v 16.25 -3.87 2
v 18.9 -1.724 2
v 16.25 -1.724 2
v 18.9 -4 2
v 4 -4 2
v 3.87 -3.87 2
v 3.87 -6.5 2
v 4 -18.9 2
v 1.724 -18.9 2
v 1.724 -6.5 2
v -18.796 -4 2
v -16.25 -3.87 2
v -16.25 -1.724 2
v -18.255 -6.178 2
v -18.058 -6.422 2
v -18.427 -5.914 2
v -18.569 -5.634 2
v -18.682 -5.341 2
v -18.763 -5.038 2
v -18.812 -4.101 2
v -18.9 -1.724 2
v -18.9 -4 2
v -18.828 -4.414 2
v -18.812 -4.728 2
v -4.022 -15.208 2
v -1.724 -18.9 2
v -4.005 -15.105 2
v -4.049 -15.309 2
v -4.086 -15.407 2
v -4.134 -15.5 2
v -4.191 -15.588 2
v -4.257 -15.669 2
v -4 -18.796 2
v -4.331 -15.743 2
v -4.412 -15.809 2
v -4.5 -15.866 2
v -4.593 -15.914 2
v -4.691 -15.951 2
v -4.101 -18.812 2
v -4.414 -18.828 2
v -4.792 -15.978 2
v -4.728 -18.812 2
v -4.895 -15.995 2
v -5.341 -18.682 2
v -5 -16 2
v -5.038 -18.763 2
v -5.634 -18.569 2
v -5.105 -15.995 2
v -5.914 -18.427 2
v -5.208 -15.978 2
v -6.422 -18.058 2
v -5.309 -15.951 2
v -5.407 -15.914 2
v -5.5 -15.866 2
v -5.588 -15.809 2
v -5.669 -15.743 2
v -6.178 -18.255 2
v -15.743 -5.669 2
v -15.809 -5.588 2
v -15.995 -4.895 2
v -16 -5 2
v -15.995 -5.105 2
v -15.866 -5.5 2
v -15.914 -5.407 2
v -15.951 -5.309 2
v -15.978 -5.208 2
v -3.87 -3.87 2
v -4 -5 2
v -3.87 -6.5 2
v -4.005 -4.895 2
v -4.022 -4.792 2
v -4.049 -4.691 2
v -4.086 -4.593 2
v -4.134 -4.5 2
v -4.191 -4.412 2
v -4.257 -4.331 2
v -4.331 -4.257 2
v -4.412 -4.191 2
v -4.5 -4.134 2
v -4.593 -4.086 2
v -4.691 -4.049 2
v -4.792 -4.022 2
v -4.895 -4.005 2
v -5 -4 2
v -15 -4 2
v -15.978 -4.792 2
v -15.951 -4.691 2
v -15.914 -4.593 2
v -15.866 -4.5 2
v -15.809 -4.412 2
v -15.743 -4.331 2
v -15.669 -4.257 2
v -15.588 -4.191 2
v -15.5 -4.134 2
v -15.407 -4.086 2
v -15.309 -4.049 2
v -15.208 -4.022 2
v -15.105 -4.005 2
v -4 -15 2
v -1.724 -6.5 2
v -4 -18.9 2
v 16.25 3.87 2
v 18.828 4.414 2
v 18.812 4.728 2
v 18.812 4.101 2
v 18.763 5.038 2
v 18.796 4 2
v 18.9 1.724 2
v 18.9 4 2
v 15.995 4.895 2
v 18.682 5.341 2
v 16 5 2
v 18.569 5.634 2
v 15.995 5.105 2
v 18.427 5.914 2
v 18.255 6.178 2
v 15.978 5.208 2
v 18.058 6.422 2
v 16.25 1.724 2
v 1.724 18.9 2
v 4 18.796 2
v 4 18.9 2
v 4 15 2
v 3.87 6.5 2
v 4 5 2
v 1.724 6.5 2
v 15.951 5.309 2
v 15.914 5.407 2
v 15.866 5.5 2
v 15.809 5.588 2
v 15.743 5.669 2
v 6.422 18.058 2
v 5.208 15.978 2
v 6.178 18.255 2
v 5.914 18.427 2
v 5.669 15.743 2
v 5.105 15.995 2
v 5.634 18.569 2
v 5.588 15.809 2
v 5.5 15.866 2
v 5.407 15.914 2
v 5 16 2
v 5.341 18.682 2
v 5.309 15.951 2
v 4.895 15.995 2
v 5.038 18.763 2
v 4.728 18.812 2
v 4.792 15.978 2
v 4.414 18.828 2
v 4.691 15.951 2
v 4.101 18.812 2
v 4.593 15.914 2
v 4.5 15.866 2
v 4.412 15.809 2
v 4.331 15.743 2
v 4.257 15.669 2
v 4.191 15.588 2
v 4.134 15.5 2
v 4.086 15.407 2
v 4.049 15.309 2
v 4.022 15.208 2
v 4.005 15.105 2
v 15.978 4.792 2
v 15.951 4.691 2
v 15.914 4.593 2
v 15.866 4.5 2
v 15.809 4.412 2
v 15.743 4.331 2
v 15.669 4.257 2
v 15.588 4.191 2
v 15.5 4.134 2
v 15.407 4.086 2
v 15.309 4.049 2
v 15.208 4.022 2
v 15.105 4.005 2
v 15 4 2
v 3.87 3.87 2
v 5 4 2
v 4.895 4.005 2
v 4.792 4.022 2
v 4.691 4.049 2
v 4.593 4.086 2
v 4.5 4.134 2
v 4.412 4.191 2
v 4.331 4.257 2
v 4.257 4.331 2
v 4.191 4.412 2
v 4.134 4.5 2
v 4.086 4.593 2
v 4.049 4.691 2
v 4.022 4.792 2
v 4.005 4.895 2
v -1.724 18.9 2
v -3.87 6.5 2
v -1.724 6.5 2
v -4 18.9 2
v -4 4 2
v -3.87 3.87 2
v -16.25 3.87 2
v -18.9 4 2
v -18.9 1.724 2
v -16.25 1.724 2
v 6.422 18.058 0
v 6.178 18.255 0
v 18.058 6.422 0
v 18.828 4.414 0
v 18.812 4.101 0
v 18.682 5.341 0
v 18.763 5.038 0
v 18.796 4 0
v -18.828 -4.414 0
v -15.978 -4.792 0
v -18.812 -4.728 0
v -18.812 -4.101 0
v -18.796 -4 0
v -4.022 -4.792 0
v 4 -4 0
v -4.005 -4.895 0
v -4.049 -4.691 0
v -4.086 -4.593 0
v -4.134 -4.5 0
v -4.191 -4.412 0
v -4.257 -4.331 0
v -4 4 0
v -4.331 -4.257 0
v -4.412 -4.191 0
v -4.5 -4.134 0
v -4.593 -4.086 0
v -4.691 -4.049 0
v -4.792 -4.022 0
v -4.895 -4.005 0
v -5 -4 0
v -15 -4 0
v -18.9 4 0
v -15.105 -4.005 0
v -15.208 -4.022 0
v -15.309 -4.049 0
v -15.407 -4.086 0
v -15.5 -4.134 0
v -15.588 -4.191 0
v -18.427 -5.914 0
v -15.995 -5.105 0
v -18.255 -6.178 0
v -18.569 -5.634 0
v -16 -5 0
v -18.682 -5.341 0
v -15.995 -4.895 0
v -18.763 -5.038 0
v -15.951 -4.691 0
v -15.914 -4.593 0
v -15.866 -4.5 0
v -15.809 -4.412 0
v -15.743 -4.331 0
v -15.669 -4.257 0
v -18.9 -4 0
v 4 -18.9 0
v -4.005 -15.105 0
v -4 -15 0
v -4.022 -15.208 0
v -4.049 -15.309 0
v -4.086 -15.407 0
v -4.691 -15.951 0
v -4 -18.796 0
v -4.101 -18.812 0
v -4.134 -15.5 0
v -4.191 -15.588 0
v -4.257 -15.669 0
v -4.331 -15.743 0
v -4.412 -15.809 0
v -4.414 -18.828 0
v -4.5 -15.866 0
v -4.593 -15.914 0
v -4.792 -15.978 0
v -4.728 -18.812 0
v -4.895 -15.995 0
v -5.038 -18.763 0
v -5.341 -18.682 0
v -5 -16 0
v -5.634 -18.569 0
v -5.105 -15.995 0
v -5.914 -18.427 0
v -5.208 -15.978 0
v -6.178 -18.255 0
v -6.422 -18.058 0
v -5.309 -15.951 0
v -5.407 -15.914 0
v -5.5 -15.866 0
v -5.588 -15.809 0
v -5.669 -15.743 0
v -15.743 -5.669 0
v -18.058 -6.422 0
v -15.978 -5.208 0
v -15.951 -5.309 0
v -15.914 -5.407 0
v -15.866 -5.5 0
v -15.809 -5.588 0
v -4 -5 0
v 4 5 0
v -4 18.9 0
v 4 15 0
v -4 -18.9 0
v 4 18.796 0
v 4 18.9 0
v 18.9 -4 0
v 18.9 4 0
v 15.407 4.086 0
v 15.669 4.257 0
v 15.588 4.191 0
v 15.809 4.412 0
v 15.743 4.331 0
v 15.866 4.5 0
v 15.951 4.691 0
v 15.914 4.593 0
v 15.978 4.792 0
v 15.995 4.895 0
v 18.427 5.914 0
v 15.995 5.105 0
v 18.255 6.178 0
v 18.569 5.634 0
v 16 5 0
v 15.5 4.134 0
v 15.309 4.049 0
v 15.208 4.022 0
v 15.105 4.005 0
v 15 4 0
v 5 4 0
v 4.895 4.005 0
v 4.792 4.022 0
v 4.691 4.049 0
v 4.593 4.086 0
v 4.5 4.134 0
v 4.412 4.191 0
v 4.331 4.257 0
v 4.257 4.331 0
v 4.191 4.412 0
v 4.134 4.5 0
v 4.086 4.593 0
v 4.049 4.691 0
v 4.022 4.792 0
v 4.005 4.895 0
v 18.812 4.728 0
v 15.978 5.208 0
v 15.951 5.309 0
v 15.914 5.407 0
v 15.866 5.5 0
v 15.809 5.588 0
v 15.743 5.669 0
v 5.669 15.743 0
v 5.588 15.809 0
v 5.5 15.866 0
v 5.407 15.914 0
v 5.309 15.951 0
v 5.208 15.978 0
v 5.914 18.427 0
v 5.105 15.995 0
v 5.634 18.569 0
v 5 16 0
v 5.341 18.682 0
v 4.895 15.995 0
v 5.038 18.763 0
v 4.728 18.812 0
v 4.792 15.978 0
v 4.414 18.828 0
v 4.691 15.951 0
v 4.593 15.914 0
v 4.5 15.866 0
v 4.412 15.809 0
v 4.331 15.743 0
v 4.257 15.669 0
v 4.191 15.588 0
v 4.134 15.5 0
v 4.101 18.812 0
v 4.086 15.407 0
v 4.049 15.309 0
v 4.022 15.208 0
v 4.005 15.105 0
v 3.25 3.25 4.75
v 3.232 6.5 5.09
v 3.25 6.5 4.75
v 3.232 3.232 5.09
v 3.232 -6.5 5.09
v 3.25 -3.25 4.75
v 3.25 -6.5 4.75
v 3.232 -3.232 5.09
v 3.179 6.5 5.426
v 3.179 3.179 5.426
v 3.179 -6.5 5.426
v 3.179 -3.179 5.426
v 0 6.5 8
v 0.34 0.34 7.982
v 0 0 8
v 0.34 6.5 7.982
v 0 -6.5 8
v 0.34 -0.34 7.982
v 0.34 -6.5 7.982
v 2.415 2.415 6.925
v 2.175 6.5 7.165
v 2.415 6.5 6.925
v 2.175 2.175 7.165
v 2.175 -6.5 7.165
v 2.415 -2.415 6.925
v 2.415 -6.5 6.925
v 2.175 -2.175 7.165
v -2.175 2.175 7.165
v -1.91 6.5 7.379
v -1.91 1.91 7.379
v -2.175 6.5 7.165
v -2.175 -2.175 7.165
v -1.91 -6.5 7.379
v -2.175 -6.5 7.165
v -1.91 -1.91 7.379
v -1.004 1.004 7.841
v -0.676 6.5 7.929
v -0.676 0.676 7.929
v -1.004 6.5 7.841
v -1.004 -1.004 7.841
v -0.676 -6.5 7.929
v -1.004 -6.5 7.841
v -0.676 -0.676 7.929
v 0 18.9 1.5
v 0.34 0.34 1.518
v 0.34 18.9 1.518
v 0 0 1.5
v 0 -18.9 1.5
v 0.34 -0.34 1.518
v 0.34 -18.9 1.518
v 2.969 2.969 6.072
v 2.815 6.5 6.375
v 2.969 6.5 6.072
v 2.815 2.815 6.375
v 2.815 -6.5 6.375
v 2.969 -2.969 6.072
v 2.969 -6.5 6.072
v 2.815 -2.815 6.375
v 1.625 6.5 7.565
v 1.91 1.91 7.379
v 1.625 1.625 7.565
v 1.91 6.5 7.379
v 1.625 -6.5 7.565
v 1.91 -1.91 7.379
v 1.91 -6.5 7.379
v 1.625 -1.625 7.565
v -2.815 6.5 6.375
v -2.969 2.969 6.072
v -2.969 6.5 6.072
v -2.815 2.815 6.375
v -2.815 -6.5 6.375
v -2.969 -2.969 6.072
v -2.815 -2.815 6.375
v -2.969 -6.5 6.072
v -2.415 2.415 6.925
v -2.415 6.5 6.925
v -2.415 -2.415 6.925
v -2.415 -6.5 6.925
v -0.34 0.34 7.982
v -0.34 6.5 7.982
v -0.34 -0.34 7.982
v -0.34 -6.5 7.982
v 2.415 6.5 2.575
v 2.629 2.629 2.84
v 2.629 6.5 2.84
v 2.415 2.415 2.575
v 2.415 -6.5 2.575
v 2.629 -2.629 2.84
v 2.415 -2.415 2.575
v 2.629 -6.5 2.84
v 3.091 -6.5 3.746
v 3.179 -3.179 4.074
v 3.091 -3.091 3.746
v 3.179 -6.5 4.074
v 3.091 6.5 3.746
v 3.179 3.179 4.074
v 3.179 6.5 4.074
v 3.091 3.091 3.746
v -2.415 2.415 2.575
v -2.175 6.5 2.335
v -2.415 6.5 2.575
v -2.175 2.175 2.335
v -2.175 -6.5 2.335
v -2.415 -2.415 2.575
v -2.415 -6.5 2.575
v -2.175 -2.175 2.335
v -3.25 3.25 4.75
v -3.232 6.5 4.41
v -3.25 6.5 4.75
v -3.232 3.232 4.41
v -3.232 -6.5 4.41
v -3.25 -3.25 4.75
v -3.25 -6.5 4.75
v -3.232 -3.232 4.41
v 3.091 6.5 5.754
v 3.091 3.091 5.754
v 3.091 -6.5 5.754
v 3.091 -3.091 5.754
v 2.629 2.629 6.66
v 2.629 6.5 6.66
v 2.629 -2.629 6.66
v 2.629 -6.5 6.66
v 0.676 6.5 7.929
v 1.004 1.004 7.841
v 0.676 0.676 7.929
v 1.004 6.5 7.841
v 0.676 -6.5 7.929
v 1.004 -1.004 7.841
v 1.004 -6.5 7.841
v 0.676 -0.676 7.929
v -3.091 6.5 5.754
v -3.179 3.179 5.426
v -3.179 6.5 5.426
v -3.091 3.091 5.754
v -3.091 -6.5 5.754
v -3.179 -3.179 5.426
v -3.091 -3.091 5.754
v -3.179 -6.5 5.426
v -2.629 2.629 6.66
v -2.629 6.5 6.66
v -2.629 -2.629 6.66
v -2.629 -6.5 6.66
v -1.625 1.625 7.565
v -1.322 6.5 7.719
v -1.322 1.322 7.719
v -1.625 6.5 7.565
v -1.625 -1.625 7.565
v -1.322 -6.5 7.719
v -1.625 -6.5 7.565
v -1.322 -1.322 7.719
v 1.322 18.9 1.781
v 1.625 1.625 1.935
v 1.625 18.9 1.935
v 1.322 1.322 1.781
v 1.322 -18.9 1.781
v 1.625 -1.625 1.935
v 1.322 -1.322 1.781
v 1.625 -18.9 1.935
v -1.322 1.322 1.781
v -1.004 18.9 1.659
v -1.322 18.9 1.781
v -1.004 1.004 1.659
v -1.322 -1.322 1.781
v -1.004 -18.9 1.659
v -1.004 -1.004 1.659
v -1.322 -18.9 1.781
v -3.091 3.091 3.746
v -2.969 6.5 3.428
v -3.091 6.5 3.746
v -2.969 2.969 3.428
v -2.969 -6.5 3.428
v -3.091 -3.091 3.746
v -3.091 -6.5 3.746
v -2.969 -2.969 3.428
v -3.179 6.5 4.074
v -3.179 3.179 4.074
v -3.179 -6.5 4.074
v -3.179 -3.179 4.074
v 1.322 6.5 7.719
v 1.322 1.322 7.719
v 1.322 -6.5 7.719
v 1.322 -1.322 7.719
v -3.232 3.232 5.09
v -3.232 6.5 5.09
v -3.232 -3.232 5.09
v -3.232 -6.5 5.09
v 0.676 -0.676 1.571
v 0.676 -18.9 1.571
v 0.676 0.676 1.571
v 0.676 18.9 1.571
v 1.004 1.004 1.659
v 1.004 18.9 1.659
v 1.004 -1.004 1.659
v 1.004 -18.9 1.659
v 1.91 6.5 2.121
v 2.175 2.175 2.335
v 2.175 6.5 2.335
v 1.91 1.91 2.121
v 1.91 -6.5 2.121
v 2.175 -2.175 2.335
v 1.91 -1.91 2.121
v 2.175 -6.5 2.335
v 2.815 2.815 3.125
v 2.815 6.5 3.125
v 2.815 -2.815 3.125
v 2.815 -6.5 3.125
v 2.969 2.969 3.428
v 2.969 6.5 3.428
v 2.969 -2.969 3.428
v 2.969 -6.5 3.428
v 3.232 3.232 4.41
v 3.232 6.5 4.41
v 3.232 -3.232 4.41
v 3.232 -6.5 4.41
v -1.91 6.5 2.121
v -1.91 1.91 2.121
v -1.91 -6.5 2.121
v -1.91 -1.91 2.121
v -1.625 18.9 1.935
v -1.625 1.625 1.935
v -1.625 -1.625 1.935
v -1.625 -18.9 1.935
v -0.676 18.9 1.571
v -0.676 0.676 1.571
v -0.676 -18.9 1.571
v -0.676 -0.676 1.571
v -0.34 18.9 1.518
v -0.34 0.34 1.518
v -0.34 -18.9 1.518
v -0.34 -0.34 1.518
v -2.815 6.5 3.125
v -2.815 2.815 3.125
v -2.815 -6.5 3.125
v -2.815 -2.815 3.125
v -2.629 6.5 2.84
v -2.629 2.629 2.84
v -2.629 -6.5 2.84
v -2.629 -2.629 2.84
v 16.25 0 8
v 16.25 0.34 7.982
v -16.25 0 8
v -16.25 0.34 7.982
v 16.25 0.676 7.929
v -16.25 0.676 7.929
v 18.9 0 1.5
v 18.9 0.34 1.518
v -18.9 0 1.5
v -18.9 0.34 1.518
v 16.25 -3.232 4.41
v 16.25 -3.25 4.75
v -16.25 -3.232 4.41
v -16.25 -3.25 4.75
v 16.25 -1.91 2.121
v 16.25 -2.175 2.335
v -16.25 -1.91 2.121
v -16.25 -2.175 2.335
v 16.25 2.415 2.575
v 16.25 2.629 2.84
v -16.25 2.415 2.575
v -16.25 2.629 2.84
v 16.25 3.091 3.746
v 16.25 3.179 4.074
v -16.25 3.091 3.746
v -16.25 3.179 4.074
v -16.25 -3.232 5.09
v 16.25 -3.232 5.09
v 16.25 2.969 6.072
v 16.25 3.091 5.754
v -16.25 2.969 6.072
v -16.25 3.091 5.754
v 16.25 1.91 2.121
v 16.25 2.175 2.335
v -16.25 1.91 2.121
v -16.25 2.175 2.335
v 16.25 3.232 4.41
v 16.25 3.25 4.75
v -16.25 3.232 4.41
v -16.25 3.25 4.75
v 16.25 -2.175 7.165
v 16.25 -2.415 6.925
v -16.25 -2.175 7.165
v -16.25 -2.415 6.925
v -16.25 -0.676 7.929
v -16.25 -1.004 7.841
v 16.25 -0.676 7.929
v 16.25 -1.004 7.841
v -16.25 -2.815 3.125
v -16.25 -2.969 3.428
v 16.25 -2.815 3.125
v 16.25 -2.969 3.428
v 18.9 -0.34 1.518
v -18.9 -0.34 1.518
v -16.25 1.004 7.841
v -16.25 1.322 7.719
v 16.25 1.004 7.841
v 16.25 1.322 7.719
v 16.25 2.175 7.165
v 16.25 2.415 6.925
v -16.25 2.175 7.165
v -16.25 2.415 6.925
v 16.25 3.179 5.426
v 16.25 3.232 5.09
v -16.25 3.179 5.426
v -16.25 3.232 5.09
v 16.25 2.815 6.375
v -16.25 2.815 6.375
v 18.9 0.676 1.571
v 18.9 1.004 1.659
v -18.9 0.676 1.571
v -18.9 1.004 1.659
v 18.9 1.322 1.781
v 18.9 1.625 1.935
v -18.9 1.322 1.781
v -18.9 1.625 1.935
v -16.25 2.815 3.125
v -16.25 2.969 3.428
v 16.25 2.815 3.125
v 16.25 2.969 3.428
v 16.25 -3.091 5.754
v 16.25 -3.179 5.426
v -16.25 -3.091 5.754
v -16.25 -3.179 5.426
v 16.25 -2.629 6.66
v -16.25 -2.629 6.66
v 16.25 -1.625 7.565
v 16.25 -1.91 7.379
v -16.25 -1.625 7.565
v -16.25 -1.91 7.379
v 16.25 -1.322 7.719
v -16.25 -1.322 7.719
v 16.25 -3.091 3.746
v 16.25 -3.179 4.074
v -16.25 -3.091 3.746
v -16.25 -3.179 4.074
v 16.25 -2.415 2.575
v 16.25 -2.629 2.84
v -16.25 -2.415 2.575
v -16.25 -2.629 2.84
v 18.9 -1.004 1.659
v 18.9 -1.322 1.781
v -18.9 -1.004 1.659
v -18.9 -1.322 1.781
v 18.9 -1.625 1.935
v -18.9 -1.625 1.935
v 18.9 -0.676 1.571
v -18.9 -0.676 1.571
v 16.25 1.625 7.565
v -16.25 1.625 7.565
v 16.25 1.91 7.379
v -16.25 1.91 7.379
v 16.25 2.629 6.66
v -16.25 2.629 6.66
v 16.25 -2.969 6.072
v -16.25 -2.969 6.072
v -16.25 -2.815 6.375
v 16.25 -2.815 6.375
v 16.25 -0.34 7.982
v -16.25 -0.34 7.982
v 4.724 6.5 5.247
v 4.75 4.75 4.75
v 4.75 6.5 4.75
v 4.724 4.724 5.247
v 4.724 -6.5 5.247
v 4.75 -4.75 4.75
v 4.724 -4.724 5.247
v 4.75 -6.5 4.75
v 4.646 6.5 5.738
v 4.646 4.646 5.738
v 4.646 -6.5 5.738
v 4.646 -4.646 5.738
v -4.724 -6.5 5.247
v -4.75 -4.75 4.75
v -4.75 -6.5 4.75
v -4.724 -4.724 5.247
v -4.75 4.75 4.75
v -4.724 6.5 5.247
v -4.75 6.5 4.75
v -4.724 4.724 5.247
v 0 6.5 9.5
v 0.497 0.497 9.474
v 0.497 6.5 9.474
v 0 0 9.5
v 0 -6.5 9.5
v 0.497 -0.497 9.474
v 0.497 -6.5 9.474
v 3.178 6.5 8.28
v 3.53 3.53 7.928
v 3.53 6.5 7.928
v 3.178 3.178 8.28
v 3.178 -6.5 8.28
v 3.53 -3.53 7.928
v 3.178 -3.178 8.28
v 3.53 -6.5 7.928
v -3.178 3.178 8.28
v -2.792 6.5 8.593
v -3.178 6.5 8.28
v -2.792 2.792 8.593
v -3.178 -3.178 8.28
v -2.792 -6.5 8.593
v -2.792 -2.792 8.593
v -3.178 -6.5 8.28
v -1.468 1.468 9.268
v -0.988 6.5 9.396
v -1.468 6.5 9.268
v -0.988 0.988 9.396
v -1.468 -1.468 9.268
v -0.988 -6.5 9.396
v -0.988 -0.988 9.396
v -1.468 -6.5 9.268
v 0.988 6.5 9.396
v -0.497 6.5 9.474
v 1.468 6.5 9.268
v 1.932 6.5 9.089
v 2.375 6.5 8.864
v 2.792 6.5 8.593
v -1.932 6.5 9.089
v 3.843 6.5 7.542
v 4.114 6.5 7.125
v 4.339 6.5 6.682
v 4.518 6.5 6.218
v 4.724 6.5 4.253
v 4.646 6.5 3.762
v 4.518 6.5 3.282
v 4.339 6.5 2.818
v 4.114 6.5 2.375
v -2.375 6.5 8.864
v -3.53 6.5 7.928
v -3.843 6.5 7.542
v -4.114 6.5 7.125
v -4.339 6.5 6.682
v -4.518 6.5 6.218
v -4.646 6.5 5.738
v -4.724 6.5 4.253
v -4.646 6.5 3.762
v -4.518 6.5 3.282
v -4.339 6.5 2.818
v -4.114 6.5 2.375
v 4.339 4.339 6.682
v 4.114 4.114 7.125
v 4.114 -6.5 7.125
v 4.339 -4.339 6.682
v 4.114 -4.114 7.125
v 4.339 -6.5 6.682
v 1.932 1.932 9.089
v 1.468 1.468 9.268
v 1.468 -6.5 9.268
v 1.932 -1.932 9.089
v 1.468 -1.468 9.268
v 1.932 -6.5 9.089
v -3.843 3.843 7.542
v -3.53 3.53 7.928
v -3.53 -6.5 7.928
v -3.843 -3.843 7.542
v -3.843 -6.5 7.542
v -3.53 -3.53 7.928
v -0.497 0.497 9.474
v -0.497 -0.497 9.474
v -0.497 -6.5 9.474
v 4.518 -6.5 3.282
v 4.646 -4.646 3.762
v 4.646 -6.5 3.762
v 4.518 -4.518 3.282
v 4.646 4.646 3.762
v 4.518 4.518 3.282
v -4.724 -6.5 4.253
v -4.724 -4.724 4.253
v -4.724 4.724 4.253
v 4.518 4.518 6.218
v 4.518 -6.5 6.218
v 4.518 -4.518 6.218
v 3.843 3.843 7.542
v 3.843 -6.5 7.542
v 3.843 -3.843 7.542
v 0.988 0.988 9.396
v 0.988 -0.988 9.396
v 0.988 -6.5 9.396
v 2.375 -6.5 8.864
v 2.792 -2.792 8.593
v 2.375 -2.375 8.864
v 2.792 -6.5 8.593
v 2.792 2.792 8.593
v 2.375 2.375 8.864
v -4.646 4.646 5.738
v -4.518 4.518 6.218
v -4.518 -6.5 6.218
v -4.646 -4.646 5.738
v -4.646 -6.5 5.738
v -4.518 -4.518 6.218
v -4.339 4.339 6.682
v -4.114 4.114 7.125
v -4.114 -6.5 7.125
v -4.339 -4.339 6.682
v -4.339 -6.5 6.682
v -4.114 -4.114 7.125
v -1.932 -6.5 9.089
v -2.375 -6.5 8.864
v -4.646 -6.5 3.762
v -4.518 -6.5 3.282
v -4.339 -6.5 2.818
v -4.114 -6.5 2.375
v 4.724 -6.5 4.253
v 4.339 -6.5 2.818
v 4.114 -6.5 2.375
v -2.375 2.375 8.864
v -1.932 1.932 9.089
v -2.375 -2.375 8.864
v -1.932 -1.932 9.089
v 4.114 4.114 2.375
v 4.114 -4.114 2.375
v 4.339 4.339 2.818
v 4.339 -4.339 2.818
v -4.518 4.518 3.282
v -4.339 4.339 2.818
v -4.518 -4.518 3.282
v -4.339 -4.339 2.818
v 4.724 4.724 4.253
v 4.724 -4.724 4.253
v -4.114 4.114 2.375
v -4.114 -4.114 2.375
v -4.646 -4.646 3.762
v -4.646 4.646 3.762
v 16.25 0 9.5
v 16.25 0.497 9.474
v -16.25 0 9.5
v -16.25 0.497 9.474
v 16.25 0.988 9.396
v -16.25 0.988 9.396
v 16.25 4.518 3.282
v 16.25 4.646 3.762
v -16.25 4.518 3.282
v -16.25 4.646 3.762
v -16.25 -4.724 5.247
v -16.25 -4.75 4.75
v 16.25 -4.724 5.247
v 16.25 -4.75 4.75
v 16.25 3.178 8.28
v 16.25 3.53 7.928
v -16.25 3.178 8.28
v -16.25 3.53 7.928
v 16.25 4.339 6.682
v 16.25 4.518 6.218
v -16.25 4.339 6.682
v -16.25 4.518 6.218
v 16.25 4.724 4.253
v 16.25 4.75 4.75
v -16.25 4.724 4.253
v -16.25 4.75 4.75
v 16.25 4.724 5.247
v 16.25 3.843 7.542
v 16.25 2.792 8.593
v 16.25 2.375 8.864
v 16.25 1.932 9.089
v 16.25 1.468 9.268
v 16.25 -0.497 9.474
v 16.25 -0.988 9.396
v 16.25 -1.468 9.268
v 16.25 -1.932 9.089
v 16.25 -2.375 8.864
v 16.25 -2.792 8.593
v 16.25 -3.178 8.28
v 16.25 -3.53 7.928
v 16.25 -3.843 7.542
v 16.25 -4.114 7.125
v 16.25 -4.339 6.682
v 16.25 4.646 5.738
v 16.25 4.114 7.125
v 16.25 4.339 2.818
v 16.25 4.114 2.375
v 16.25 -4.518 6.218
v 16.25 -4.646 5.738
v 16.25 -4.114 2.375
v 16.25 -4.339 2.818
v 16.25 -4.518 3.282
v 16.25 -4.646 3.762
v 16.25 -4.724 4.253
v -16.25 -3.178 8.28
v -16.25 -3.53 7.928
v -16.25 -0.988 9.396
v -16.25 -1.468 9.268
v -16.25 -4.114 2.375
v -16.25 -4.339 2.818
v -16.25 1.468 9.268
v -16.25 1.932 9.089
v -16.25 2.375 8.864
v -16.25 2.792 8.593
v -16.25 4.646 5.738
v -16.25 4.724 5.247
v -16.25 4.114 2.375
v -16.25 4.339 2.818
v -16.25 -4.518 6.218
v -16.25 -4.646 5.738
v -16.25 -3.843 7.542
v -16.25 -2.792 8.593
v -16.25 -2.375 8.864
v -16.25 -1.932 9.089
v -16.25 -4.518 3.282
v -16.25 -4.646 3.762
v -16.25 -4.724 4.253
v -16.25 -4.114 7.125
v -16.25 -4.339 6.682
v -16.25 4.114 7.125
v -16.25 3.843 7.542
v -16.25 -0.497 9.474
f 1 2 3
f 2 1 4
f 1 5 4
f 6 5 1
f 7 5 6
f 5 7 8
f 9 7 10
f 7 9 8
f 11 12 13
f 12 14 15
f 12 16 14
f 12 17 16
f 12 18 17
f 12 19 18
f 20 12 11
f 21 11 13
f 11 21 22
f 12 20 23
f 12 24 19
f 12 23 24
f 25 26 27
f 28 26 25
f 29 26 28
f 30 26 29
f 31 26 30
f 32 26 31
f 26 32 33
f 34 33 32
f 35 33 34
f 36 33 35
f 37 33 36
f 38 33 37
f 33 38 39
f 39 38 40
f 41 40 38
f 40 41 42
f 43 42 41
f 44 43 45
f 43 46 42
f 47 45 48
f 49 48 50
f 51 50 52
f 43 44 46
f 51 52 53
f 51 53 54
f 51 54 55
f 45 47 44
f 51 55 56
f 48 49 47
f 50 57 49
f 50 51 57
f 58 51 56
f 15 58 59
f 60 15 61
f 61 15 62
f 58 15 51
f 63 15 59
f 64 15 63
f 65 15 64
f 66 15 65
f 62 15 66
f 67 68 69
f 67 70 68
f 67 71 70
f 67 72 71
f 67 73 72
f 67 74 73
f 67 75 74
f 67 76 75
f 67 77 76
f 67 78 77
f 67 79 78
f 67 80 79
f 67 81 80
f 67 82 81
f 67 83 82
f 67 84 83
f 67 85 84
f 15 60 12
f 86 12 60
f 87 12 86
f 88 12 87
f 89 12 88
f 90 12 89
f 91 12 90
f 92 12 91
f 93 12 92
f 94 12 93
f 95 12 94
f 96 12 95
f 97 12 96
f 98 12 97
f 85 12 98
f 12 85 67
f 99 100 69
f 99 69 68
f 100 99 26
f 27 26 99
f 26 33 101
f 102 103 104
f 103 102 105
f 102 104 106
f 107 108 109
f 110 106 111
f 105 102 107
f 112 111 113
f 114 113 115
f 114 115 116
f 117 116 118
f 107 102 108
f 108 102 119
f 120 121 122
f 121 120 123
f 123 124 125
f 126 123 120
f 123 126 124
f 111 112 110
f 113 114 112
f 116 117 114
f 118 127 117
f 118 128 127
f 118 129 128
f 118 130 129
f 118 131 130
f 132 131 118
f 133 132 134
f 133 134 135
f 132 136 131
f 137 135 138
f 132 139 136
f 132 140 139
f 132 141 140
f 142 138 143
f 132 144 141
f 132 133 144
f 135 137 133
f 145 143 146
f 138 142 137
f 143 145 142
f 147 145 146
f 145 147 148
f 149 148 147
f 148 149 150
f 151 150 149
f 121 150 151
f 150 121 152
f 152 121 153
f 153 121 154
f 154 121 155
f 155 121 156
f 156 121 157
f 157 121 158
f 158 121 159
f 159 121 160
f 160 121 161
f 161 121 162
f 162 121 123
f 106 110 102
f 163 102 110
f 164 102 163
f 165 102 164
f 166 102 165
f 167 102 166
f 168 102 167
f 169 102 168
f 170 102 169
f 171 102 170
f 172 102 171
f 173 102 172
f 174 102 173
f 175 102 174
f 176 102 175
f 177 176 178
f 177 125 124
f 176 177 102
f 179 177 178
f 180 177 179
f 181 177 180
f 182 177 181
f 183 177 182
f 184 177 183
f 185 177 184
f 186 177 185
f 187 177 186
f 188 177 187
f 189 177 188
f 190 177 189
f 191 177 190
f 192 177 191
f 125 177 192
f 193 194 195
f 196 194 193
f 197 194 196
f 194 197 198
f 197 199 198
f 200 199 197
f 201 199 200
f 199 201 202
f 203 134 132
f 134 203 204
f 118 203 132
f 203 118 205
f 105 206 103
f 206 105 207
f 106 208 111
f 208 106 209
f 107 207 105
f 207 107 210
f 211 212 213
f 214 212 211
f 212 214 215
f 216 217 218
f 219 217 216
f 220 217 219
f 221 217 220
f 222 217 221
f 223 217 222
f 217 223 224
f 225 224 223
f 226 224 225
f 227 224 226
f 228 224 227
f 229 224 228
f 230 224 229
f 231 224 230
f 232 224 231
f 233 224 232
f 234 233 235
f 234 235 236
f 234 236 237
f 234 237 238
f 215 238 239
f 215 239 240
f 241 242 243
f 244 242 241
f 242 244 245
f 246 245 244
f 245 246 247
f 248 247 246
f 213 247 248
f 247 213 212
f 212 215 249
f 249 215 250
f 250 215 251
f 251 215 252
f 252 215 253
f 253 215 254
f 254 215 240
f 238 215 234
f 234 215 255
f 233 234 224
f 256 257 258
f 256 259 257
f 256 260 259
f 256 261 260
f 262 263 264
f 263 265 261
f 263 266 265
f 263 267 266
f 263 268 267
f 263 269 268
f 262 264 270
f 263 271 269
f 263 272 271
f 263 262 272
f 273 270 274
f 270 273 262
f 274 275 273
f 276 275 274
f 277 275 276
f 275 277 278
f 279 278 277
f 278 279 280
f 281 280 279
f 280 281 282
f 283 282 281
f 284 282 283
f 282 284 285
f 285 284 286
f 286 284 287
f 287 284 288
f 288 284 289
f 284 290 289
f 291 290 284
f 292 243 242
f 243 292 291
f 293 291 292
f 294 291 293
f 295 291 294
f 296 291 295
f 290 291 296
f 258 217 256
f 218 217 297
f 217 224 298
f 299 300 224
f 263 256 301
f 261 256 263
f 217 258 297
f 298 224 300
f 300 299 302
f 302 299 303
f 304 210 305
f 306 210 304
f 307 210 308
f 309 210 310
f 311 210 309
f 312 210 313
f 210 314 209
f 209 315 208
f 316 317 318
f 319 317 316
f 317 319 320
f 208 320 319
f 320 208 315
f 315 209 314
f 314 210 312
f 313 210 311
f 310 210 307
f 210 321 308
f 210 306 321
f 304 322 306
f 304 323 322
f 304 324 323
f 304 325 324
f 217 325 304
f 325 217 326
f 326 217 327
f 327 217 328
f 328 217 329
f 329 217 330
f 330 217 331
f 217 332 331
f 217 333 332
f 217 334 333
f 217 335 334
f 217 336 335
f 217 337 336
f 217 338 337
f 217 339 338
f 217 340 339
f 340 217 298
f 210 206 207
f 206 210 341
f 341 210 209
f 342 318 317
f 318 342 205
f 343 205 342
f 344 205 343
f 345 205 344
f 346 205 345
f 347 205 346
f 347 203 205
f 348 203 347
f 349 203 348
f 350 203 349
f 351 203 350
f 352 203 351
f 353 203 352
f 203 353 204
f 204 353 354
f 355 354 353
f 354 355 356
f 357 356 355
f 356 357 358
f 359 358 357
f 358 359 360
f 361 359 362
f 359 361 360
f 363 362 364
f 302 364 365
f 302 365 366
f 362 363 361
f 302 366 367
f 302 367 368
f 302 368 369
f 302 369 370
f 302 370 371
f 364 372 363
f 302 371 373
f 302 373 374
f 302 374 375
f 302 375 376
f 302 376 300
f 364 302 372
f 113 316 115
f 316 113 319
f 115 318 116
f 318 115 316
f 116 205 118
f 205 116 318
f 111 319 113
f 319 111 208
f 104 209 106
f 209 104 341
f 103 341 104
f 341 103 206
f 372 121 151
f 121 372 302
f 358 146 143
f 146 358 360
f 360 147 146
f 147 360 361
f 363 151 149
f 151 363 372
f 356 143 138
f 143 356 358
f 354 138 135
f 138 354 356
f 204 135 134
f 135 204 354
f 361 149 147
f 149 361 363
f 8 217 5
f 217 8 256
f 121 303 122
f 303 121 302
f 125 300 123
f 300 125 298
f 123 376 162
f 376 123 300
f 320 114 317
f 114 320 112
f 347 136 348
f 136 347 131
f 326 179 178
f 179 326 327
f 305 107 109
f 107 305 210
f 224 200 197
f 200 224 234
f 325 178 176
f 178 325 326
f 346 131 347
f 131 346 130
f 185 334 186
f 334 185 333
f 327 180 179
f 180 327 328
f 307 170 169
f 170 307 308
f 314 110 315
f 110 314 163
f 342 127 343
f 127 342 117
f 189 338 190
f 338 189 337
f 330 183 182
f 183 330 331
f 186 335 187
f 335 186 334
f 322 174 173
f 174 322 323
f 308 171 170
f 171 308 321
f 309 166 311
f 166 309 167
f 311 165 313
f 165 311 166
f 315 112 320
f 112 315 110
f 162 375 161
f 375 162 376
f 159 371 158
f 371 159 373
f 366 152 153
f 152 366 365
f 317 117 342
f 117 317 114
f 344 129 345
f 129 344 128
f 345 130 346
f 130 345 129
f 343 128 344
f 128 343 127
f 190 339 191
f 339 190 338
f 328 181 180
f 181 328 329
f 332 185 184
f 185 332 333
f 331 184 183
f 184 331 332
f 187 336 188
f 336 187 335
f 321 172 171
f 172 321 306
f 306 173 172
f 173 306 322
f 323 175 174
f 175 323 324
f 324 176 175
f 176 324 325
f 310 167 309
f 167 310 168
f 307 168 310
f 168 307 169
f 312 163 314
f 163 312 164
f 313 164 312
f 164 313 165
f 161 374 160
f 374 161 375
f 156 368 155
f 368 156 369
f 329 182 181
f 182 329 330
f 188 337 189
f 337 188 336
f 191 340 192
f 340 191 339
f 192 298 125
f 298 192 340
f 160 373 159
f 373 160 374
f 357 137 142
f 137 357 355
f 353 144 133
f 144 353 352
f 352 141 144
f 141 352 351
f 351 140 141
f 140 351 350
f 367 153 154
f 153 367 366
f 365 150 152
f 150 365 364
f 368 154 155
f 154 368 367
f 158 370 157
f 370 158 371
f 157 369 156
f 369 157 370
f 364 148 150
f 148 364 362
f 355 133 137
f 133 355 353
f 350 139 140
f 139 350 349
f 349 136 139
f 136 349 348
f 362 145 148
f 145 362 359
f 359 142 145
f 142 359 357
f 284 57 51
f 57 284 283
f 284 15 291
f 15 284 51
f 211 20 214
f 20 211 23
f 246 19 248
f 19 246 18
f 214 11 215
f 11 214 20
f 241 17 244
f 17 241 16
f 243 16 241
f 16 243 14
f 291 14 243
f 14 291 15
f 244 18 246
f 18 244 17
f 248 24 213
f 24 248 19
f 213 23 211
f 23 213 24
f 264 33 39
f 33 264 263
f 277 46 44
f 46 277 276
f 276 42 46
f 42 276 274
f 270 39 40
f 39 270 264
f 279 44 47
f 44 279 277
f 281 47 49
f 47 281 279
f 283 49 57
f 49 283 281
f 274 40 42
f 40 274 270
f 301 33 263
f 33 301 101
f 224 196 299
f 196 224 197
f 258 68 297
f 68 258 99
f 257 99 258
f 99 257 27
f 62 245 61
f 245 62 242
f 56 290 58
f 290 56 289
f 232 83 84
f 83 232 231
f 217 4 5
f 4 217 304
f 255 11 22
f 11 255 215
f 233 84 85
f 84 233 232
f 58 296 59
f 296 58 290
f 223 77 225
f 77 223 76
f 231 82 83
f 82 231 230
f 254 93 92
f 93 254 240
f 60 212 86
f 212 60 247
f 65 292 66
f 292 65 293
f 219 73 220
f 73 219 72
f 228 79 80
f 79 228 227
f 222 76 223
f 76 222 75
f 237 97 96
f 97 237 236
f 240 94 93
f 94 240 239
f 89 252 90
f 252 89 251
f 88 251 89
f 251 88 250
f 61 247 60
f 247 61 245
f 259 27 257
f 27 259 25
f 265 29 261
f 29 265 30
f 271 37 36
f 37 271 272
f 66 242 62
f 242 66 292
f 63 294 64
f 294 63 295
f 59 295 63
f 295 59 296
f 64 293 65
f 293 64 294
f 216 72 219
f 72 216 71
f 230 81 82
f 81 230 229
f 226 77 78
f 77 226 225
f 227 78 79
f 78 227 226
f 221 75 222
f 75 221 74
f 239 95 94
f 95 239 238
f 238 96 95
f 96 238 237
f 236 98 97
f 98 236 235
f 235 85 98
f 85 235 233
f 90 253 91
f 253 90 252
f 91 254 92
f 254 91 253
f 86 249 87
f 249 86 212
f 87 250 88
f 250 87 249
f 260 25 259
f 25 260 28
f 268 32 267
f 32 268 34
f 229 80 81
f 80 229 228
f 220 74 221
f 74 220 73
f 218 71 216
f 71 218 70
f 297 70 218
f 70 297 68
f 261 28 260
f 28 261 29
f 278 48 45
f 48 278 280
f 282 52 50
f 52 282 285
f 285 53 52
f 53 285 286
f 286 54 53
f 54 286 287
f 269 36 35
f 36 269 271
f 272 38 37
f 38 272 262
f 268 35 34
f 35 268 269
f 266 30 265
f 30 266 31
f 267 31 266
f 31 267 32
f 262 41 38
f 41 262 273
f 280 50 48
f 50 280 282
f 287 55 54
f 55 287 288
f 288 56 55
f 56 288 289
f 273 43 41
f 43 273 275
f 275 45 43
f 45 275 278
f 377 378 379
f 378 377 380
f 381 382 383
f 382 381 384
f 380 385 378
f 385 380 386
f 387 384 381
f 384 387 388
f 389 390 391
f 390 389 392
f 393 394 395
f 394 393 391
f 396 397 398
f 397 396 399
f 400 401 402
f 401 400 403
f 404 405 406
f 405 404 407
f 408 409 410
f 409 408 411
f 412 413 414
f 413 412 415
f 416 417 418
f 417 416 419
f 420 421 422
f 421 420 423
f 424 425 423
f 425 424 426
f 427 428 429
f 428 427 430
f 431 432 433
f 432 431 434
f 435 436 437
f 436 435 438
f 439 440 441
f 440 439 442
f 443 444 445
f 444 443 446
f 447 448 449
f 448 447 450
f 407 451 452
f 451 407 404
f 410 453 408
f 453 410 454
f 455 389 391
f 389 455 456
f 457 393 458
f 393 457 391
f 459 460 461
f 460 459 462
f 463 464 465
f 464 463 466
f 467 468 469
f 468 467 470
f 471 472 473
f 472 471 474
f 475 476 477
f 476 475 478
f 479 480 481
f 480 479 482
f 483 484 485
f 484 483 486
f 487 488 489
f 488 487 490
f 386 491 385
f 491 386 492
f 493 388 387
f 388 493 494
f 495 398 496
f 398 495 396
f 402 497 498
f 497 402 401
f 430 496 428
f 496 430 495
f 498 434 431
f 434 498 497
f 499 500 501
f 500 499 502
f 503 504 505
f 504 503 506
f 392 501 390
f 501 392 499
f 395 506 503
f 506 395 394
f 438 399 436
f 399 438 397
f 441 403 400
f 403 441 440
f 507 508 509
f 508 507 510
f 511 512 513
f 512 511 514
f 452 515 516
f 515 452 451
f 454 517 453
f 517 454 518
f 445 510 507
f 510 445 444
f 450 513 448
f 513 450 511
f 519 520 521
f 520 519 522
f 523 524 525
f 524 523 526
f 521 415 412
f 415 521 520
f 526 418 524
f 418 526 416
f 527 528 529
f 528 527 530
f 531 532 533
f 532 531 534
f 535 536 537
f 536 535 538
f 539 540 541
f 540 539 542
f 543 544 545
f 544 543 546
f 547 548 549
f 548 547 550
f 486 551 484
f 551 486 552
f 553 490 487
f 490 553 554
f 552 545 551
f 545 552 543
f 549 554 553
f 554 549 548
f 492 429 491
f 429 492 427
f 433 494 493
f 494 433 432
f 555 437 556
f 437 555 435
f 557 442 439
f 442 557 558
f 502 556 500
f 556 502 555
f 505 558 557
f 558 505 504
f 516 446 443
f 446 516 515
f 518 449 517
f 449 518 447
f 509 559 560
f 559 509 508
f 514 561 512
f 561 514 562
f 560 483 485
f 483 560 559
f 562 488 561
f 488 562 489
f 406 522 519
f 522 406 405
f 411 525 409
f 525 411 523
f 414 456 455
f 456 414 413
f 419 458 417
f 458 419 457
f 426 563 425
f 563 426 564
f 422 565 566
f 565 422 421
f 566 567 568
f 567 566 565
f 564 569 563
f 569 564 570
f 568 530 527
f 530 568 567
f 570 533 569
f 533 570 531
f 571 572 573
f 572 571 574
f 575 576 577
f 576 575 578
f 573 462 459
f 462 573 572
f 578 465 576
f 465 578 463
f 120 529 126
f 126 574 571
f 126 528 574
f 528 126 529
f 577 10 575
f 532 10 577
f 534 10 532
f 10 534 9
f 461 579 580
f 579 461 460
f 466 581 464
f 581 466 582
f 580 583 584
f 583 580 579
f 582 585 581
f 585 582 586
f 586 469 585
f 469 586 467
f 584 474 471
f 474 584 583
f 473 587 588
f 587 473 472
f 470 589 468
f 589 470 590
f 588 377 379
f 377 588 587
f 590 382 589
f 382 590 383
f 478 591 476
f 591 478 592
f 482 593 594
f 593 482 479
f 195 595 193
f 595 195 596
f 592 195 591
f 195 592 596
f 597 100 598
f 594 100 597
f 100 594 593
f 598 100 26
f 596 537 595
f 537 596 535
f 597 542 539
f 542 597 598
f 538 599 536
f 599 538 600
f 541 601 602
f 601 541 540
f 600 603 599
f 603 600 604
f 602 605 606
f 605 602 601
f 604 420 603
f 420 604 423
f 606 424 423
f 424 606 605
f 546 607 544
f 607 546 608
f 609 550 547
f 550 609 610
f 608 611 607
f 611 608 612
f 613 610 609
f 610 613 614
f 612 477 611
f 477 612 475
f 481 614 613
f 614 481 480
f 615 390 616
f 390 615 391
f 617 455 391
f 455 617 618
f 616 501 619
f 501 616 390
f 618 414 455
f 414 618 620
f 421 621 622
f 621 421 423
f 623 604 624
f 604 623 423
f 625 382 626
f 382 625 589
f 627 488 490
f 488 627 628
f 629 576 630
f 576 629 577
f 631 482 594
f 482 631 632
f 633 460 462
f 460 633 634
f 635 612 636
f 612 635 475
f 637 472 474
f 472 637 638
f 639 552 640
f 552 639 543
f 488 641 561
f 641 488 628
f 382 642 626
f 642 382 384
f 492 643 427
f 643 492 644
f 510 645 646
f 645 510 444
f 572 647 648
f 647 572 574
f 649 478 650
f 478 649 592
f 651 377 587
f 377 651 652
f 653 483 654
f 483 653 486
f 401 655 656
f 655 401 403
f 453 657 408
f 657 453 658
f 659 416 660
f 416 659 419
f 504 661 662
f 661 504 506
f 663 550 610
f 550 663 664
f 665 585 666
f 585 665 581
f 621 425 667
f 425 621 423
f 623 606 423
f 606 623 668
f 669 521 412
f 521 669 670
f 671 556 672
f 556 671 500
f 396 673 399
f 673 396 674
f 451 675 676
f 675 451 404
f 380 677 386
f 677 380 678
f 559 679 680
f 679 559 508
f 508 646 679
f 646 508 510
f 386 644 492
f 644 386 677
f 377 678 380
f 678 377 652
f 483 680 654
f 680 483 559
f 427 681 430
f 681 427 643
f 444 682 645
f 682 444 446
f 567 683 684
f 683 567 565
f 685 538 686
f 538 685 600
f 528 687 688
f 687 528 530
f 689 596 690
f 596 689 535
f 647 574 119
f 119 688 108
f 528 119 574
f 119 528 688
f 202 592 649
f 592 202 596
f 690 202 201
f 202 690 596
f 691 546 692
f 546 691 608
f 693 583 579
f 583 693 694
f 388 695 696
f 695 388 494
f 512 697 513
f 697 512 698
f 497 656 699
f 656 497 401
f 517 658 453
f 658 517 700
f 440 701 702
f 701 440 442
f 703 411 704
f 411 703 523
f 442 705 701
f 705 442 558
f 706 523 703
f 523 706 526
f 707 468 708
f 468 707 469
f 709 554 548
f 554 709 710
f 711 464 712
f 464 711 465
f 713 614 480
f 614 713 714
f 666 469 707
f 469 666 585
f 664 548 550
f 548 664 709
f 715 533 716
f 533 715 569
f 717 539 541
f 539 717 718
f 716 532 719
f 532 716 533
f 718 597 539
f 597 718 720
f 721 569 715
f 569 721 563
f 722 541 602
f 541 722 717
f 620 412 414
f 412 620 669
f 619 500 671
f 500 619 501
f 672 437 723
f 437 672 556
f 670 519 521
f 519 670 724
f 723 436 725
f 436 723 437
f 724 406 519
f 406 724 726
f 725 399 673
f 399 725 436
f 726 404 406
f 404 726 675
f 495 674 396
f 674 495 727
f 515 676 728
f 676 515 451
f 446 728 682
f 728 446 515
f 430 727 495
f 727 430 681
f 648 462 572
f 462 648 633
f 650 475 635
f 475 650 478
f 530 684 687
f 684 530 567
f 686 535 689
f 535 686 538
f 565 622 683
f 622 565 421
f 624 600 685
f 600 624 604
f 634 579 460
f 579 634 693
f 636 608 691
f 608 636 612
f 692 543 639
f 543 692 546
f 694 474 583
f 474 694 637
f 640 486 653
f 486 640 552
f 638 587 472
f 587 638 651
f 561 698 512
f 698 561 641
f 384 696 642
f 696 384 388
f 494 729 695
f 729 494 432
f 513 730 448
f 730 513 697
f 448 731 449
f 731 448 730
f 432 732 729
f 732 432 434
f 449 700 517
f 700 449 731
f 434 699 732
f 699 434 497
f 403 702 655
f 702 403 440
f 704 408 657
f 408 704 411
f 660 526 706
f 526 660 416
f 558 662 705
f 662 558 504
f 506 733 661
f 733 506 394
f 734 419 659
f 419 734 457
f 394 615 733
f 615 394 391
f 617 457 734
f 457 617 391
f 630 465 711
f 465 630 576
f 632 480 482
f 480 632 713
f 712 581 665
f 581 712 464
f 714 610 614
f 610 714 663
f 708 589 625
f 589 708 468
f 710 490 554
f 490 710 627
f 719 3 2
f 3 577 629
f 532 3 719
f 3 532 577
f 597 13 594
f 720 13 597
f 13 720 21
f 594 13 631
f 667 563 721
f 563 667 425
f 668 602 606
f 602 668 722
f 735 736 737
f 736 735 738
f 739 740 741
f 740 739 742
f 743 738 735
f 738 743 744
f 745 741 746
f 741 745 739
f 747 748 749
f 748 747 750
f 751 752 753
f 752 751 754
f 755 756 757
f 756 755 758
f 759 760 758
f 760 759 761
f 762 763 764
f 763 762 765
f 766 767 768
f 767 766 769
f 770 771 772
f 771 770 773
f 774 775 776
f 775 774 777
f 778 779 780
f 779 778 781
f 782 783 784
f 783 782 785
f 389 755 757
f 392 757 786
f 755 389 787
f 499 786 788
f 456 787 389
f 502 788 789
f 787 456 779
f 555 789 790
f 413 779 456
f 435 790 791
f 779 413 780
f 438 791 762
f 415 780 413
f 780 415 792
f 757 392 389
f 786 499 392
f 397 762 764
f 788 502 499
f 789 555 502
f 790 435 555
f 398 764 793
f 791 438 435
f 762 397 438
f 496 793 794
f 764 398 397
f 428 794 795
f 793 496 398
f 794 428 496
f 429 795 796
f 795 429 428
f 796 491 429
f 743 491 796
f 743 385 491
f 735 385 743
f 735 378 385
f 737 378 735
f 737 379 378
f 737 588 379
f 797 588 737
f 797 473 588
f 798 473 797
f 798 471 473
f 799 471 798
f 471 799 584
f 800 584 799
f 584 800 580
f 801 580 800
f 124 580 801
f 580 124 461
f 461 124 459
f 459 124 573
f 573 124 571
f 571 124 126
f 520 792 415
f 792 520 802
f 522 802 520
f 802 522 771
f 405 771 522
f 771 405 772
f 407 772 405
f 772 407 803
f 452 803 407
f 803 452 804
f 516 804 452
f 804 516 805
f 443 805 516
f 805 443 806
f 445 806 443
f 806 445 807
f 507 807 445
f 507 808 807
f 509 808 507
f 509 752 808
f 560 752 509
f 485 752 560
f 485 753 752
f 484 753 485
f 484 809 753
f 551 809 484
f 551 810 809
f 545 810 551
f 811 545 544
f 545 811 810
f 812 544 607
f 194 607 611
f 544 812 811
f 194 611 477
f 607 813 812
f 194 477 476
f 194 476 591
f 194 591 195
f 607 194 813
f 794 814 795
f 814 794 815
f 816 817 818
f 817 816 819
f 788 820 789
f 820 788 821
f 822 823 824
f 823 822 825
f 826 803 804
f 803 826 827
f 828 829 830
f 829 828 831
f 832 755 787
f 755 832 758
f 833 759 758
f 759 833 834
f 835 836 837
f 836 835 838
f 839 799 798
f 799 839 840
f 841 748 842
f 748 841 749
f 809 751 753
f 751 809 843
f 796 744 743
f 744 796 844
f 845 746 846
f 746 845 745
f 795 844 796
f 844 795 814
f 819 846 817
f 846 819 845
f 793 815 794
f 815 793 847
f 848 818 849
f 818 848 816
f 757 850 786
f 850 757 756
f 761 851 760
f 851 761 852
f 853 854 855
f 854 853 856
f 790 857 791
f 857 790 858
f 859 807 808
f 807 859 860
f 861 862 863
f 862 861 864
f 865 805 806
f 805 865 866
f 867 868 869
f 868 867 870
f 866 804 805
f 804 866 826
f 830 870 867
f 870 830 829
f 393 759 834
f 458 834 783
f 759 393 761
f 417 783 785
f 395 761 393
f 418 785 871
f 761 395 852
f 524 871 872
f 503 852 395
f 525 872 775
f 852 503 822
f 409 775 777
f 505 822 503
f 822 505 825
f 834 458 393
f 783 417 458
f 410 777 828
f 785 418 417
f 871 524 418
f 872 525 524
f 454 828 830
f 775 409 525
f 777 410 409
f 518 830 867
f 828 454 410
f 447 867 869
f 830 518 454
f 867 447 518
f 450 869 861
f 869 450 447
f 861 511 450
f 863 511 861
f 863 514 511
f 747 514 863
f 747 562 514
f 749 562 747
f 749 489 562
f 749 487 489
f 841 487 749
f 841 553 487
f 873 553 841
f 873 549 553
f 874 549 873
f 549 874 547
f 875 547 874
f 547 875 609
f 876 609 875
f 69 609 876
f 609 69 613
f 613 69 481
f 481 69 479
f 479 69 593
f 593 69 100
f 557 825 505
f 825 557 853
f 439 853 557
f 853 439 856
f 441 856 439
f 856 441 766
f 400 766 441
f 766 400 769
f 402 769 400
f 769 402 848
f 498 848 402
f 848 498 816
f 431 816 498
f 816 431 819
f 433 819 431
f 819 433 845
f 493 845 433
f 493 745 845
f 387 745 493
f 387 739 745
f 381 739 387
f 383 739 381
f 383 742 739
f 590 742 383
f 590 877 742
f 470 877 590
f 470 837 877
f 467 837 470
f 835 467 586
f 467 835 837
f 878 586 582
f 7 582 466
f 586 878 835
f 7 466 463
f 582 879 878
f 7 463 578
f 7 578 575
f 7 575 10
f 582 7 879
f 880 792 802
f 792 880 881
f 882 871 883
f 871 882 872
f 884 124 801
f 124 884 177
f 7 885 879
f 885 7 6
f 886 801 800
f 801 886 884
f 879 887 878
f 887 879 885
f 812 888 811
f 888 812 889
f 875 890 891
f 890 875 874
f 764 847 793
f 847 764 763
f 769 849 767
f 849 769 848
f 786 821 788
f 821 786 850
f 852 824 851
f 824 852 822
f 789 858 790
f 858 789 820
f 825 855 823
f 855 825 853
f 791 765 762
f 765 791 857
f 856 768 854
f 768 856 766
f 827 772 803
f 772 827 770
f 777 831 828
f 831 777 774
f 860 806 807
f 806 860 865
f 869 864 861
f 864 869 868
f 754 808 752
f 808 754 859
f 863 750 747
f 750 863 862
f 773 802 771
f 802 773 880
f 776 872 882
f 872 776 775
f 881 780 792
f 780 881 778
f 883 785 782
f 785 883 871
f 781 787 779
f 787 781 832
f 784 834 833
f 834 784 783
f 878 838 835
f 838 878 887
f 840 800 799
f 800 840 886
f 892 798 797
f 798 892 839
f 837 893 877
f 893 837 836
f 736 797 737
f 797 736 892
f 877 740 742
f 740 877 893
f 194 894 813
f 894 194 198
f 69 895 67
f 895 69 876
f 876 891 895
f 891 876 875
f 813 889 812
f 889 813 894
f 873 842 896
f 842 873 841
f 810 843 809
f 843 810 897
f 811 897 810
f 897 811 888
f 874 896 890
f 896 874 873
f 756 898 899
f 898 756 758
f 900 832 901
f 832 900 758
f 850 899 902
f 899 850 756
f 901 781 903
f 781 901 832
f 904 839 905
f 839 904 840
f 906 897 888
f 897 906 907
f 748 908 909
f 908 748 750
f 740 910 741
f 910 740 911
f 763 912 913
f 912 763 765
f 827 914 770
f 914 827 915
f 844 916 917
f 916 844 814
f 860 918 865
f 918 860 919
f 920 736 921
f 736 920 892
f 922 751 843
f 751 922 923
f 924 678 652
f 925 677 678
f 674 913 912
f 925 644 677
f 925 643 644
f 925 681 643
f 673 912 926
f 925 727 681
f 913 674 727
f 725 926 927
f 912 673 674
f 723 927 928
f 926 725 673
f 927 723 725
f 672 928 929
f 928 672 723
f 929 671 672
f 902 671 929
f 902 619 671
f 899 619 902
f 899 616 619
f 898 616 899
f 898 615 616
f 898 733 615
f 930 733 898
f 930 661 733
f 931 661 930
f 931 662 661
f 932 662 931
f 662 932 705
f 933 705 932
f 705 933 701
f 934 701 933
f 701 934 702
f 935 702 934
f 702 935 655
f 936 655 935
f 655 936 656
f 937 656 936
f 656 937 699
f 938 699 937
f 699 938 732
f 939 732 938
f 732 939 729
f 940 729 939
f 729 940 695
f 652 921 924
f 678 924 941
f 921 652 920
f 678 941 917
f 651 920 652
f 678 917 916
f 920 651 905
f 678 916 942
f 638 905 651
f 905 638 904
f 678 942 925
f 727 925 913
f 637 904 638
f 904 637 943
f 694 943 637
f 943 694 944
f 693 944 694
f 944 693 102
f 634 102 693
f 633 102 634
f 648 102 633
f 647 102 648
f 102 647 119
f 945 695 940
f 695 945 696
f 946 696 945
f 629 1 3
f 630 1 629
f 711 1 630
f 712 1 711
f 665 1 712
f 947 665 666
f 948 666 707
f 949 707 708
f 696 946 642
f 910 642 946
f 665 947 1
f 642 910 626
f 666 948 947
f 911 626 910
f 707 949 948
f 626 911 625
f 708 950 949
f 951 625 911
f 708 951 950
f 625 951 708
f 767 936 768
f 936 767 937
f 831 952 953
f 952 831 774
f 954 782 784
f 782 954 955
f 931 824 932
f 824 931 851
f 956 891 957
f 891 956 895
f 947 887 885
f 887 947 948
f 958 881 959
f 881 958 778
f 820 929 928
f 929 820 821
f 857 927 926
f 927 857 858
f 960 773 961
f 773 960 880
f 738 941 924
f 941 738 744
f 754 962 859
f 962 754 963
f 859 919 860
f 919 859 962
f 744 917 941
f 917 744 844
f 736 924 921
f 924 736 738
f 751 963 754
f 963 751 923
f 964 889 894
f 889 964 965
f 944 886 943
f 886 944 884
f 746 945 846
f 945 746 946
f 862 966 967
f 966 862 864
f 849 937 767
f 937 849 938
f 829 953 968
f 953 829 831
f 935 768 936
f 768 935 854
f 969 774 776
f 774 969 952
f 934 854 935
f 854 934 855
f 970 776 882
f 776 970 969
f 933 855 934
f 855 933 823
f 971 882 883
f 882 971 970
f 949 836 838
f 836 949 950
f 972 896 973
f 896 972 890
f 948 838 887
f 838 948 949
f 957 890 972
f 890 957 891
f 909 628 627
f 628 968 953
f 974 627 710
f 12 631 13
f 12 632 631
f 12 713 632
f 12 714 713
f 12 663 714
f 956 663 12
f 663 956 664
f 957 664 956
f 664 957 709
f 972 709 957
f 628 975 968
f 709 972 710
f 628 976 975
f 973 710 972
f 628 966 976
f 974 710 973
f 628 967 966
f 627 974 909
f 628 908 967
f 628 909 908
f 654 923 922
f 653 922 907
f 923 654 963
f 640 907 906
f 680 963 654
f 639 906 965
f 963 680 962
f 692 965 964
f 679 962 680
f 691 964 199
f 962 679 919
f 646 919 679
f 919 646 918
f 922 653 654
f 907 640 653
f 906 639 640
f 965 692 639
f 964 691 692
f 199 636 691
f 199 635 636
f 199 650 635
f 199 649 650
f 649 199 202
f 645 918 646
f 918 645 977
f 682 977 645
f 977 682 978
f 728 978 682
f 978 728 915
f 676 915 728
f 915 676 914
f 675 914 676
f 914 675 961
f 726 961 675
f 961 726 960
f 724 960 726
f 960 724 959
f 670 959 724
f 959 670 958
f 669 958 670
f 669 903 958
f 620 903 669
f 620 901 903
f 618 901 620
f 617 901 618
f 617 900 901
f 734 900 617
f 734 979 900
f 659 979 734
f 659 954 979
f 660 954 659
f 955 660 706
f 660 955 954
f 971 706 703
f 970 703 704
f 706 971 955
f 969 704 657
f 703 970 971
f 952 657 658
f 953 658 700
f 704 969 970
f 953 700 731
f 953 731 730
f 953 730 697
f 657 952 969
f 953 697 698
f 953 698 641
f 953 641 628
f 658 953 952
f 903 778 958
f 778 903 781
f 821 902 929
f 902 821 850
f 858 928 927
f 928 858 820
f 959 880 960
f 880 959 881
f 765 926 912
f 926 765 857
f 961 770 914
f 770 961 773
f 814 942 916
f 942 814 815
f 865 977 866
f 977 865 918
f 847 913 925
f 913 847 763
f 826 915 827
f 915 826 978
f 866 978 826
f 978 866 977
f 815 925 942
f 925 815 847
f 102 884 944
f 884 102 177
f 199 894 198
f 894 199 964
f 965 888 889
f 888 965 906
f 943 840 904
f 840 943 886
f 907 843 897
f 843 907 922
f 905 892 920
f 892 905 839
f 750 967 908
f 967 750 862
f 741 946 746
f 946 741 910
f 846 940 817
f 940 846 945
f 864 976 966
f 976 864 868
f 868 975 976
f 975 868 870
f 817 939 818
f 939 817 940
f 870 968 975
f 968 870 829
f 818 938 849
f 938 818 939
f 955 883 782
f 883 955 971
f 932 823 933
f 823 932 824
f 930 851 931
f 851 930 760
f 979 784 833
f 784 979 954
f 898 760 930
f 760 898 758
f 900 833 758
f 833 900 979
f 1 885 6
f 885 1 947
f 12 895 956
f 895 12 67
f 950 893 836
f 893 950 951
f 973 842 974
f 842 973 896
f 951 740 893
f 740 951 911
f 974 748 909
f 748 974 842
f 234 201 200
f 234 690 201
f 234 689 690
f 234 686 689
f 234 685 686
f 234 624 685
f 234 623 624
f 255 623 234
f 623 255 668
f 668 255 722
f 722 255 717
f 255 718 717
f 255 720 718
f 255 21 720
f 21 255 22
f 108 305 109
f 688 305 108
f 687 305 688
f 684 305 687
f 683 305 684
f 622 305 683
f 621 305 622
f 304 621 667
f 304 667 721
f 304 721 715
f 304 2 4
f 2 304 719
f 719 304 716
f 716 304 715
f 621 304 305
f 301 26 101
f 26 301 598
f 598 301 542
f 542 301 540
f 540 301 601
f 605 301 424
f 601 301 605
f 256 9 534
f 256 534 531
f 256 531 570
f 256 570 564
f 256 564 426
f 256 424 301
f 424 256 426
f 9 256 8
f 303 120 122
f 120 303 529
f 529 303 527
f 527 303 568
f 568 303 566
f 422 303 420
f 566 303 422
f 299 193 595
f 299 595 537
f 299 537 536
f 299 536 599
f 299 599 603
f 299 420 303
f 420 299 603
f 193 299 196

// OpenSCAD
// Center cross for a drone frame

//print with 100% infill

//=======================================================================
// Config
//=======================================================================
//beam diameter
dia1=6.5;

//wall thickness main cross beam
wall=1.5; //1mm is too thin: cross breaks before beam

//socket depth for both axis
//as a rule, make socket 2*diameter deep
socket1=dia1; //socket has a through beam, so only half the socket needed 
socket2=2.5*dia1; //.5 diameter is blocked by other beam, so 2.5 diameter in total

//z-offset between the two axis
//z_offset=6.5;
z_offset=0;

//use hull?
use_hull=0;

//flat top/bottom?
use_flat_top=0;
use_flat_bottom=0;

//strap holder
strap_l=20; //set to 0 to not use straps
strap_w=2; 
strap_h=2;
strap_offset = 3; //offset from xy axis
strap_reinforce = 1; //0=no, 1=yes

//=======================================================================

$fn=60; //number of fragments

difference() {
  union() {
    if(strap_h>0) 
      //translate([0,0,-strap_h+wall]) 
        Straps(w=strap_w,h=strap_h,l=strap_l,offset=strap_offset);
    Cross();
  }
  CrossDrill();
}


//------------------------------------------------------------------------------------------------
module Cross() {
  od = dia1+2*wall; //outside diameter

  translate([0,0,od/2])
  HullOrUnion() {
    //outline
    translate([0,socket1,-z_offset/2]) rotate([90,0,0]) cylinder(h=socket1*2,d=od);
    translate([socket2,0,z_offset/2]) rotate([0,-90,0]) cylinder(h=socket2*2,d=od);
  }
  if(use_flat_top) {
    translate([0,0,3*od/4]) cube([2*socket2,od,od/2],center=true);
    translate([0,0,3*od/4]) cube([od,2*socket1,od/2],center=true);
  }
  if(use_flat_bottom) {
    translate([0,0,1*od/4]) cube([2*socket2,od,od/2],center=true);
    translate([0,0,1*od/4]) cube([od,2*socket1,od/2],center=true);
  }  
}

module CrossDrill() {
  od = dia1+2*wall; //outside diameter

  translate([0,0,od/2])
  union() {
    //drill holes
    translate([0,0,-z_offset/2]) rotate([90,0,0]) cylinder(h=999,d=dia1,center=true);
    translate([0,0,z_offset/2]) rotate([0,-90,0]) cylinder(h=999,d=dia1,center=true);
  }
}

module HullOrUnion() {
  if(use_hull) {
    hull() children();
  }
  else
    union() children();
}

//------------------------------------------------------------------------------------------------
module Straps(w,h,l,offset) {
  d = offset;
  union() {
    //straps
    translate([d,d]) Strap(w,h,l);
    translate([-d,-d]) rotate([0,0,180]) Strap(w,h,l);
    //offset filler
    if(strap_reinforce) {
      //heavy
      translate([0,0,h/2]) cube([2*l-2.2,2*d+w,h],center=true);
      translate([0,0,h/2]) cube([2*d+w,2*l-2.2,h],center=true);
    }else{
      //light
      translate([0,0,h/2]) cube([2*socket2,2*d,h],center=true);
      translate([0,0,h/2]) cube([2*d,2*socket1,h],center=true);
    }

  }
}

module Strap(w,h,l) {
  r1=1;
  r2=r1+w;

  off1 = l/2;
  d = w*sqrt(2)/2;
  off2 = off1 + 2*d;

  difference() {
    hull() {
      translate([d,d]) cylinder(r=r2,h=h);
      translate([off2,d]) cylinder(r=r2,h=h);
      translate([d,off2]) cylinder(r=r2,h=h);
    }
    translate([r1+w/2,r1+w/2])
    hull() {
      translate([0,0]) cylinder(r=r1,h=999,center=true);
      translate([off1,0]) cylinder(r=r1,h=999,center=true);
      translate([0,off1]) cylinder(r=r1,h=999,center=true);
    }
  }
}
